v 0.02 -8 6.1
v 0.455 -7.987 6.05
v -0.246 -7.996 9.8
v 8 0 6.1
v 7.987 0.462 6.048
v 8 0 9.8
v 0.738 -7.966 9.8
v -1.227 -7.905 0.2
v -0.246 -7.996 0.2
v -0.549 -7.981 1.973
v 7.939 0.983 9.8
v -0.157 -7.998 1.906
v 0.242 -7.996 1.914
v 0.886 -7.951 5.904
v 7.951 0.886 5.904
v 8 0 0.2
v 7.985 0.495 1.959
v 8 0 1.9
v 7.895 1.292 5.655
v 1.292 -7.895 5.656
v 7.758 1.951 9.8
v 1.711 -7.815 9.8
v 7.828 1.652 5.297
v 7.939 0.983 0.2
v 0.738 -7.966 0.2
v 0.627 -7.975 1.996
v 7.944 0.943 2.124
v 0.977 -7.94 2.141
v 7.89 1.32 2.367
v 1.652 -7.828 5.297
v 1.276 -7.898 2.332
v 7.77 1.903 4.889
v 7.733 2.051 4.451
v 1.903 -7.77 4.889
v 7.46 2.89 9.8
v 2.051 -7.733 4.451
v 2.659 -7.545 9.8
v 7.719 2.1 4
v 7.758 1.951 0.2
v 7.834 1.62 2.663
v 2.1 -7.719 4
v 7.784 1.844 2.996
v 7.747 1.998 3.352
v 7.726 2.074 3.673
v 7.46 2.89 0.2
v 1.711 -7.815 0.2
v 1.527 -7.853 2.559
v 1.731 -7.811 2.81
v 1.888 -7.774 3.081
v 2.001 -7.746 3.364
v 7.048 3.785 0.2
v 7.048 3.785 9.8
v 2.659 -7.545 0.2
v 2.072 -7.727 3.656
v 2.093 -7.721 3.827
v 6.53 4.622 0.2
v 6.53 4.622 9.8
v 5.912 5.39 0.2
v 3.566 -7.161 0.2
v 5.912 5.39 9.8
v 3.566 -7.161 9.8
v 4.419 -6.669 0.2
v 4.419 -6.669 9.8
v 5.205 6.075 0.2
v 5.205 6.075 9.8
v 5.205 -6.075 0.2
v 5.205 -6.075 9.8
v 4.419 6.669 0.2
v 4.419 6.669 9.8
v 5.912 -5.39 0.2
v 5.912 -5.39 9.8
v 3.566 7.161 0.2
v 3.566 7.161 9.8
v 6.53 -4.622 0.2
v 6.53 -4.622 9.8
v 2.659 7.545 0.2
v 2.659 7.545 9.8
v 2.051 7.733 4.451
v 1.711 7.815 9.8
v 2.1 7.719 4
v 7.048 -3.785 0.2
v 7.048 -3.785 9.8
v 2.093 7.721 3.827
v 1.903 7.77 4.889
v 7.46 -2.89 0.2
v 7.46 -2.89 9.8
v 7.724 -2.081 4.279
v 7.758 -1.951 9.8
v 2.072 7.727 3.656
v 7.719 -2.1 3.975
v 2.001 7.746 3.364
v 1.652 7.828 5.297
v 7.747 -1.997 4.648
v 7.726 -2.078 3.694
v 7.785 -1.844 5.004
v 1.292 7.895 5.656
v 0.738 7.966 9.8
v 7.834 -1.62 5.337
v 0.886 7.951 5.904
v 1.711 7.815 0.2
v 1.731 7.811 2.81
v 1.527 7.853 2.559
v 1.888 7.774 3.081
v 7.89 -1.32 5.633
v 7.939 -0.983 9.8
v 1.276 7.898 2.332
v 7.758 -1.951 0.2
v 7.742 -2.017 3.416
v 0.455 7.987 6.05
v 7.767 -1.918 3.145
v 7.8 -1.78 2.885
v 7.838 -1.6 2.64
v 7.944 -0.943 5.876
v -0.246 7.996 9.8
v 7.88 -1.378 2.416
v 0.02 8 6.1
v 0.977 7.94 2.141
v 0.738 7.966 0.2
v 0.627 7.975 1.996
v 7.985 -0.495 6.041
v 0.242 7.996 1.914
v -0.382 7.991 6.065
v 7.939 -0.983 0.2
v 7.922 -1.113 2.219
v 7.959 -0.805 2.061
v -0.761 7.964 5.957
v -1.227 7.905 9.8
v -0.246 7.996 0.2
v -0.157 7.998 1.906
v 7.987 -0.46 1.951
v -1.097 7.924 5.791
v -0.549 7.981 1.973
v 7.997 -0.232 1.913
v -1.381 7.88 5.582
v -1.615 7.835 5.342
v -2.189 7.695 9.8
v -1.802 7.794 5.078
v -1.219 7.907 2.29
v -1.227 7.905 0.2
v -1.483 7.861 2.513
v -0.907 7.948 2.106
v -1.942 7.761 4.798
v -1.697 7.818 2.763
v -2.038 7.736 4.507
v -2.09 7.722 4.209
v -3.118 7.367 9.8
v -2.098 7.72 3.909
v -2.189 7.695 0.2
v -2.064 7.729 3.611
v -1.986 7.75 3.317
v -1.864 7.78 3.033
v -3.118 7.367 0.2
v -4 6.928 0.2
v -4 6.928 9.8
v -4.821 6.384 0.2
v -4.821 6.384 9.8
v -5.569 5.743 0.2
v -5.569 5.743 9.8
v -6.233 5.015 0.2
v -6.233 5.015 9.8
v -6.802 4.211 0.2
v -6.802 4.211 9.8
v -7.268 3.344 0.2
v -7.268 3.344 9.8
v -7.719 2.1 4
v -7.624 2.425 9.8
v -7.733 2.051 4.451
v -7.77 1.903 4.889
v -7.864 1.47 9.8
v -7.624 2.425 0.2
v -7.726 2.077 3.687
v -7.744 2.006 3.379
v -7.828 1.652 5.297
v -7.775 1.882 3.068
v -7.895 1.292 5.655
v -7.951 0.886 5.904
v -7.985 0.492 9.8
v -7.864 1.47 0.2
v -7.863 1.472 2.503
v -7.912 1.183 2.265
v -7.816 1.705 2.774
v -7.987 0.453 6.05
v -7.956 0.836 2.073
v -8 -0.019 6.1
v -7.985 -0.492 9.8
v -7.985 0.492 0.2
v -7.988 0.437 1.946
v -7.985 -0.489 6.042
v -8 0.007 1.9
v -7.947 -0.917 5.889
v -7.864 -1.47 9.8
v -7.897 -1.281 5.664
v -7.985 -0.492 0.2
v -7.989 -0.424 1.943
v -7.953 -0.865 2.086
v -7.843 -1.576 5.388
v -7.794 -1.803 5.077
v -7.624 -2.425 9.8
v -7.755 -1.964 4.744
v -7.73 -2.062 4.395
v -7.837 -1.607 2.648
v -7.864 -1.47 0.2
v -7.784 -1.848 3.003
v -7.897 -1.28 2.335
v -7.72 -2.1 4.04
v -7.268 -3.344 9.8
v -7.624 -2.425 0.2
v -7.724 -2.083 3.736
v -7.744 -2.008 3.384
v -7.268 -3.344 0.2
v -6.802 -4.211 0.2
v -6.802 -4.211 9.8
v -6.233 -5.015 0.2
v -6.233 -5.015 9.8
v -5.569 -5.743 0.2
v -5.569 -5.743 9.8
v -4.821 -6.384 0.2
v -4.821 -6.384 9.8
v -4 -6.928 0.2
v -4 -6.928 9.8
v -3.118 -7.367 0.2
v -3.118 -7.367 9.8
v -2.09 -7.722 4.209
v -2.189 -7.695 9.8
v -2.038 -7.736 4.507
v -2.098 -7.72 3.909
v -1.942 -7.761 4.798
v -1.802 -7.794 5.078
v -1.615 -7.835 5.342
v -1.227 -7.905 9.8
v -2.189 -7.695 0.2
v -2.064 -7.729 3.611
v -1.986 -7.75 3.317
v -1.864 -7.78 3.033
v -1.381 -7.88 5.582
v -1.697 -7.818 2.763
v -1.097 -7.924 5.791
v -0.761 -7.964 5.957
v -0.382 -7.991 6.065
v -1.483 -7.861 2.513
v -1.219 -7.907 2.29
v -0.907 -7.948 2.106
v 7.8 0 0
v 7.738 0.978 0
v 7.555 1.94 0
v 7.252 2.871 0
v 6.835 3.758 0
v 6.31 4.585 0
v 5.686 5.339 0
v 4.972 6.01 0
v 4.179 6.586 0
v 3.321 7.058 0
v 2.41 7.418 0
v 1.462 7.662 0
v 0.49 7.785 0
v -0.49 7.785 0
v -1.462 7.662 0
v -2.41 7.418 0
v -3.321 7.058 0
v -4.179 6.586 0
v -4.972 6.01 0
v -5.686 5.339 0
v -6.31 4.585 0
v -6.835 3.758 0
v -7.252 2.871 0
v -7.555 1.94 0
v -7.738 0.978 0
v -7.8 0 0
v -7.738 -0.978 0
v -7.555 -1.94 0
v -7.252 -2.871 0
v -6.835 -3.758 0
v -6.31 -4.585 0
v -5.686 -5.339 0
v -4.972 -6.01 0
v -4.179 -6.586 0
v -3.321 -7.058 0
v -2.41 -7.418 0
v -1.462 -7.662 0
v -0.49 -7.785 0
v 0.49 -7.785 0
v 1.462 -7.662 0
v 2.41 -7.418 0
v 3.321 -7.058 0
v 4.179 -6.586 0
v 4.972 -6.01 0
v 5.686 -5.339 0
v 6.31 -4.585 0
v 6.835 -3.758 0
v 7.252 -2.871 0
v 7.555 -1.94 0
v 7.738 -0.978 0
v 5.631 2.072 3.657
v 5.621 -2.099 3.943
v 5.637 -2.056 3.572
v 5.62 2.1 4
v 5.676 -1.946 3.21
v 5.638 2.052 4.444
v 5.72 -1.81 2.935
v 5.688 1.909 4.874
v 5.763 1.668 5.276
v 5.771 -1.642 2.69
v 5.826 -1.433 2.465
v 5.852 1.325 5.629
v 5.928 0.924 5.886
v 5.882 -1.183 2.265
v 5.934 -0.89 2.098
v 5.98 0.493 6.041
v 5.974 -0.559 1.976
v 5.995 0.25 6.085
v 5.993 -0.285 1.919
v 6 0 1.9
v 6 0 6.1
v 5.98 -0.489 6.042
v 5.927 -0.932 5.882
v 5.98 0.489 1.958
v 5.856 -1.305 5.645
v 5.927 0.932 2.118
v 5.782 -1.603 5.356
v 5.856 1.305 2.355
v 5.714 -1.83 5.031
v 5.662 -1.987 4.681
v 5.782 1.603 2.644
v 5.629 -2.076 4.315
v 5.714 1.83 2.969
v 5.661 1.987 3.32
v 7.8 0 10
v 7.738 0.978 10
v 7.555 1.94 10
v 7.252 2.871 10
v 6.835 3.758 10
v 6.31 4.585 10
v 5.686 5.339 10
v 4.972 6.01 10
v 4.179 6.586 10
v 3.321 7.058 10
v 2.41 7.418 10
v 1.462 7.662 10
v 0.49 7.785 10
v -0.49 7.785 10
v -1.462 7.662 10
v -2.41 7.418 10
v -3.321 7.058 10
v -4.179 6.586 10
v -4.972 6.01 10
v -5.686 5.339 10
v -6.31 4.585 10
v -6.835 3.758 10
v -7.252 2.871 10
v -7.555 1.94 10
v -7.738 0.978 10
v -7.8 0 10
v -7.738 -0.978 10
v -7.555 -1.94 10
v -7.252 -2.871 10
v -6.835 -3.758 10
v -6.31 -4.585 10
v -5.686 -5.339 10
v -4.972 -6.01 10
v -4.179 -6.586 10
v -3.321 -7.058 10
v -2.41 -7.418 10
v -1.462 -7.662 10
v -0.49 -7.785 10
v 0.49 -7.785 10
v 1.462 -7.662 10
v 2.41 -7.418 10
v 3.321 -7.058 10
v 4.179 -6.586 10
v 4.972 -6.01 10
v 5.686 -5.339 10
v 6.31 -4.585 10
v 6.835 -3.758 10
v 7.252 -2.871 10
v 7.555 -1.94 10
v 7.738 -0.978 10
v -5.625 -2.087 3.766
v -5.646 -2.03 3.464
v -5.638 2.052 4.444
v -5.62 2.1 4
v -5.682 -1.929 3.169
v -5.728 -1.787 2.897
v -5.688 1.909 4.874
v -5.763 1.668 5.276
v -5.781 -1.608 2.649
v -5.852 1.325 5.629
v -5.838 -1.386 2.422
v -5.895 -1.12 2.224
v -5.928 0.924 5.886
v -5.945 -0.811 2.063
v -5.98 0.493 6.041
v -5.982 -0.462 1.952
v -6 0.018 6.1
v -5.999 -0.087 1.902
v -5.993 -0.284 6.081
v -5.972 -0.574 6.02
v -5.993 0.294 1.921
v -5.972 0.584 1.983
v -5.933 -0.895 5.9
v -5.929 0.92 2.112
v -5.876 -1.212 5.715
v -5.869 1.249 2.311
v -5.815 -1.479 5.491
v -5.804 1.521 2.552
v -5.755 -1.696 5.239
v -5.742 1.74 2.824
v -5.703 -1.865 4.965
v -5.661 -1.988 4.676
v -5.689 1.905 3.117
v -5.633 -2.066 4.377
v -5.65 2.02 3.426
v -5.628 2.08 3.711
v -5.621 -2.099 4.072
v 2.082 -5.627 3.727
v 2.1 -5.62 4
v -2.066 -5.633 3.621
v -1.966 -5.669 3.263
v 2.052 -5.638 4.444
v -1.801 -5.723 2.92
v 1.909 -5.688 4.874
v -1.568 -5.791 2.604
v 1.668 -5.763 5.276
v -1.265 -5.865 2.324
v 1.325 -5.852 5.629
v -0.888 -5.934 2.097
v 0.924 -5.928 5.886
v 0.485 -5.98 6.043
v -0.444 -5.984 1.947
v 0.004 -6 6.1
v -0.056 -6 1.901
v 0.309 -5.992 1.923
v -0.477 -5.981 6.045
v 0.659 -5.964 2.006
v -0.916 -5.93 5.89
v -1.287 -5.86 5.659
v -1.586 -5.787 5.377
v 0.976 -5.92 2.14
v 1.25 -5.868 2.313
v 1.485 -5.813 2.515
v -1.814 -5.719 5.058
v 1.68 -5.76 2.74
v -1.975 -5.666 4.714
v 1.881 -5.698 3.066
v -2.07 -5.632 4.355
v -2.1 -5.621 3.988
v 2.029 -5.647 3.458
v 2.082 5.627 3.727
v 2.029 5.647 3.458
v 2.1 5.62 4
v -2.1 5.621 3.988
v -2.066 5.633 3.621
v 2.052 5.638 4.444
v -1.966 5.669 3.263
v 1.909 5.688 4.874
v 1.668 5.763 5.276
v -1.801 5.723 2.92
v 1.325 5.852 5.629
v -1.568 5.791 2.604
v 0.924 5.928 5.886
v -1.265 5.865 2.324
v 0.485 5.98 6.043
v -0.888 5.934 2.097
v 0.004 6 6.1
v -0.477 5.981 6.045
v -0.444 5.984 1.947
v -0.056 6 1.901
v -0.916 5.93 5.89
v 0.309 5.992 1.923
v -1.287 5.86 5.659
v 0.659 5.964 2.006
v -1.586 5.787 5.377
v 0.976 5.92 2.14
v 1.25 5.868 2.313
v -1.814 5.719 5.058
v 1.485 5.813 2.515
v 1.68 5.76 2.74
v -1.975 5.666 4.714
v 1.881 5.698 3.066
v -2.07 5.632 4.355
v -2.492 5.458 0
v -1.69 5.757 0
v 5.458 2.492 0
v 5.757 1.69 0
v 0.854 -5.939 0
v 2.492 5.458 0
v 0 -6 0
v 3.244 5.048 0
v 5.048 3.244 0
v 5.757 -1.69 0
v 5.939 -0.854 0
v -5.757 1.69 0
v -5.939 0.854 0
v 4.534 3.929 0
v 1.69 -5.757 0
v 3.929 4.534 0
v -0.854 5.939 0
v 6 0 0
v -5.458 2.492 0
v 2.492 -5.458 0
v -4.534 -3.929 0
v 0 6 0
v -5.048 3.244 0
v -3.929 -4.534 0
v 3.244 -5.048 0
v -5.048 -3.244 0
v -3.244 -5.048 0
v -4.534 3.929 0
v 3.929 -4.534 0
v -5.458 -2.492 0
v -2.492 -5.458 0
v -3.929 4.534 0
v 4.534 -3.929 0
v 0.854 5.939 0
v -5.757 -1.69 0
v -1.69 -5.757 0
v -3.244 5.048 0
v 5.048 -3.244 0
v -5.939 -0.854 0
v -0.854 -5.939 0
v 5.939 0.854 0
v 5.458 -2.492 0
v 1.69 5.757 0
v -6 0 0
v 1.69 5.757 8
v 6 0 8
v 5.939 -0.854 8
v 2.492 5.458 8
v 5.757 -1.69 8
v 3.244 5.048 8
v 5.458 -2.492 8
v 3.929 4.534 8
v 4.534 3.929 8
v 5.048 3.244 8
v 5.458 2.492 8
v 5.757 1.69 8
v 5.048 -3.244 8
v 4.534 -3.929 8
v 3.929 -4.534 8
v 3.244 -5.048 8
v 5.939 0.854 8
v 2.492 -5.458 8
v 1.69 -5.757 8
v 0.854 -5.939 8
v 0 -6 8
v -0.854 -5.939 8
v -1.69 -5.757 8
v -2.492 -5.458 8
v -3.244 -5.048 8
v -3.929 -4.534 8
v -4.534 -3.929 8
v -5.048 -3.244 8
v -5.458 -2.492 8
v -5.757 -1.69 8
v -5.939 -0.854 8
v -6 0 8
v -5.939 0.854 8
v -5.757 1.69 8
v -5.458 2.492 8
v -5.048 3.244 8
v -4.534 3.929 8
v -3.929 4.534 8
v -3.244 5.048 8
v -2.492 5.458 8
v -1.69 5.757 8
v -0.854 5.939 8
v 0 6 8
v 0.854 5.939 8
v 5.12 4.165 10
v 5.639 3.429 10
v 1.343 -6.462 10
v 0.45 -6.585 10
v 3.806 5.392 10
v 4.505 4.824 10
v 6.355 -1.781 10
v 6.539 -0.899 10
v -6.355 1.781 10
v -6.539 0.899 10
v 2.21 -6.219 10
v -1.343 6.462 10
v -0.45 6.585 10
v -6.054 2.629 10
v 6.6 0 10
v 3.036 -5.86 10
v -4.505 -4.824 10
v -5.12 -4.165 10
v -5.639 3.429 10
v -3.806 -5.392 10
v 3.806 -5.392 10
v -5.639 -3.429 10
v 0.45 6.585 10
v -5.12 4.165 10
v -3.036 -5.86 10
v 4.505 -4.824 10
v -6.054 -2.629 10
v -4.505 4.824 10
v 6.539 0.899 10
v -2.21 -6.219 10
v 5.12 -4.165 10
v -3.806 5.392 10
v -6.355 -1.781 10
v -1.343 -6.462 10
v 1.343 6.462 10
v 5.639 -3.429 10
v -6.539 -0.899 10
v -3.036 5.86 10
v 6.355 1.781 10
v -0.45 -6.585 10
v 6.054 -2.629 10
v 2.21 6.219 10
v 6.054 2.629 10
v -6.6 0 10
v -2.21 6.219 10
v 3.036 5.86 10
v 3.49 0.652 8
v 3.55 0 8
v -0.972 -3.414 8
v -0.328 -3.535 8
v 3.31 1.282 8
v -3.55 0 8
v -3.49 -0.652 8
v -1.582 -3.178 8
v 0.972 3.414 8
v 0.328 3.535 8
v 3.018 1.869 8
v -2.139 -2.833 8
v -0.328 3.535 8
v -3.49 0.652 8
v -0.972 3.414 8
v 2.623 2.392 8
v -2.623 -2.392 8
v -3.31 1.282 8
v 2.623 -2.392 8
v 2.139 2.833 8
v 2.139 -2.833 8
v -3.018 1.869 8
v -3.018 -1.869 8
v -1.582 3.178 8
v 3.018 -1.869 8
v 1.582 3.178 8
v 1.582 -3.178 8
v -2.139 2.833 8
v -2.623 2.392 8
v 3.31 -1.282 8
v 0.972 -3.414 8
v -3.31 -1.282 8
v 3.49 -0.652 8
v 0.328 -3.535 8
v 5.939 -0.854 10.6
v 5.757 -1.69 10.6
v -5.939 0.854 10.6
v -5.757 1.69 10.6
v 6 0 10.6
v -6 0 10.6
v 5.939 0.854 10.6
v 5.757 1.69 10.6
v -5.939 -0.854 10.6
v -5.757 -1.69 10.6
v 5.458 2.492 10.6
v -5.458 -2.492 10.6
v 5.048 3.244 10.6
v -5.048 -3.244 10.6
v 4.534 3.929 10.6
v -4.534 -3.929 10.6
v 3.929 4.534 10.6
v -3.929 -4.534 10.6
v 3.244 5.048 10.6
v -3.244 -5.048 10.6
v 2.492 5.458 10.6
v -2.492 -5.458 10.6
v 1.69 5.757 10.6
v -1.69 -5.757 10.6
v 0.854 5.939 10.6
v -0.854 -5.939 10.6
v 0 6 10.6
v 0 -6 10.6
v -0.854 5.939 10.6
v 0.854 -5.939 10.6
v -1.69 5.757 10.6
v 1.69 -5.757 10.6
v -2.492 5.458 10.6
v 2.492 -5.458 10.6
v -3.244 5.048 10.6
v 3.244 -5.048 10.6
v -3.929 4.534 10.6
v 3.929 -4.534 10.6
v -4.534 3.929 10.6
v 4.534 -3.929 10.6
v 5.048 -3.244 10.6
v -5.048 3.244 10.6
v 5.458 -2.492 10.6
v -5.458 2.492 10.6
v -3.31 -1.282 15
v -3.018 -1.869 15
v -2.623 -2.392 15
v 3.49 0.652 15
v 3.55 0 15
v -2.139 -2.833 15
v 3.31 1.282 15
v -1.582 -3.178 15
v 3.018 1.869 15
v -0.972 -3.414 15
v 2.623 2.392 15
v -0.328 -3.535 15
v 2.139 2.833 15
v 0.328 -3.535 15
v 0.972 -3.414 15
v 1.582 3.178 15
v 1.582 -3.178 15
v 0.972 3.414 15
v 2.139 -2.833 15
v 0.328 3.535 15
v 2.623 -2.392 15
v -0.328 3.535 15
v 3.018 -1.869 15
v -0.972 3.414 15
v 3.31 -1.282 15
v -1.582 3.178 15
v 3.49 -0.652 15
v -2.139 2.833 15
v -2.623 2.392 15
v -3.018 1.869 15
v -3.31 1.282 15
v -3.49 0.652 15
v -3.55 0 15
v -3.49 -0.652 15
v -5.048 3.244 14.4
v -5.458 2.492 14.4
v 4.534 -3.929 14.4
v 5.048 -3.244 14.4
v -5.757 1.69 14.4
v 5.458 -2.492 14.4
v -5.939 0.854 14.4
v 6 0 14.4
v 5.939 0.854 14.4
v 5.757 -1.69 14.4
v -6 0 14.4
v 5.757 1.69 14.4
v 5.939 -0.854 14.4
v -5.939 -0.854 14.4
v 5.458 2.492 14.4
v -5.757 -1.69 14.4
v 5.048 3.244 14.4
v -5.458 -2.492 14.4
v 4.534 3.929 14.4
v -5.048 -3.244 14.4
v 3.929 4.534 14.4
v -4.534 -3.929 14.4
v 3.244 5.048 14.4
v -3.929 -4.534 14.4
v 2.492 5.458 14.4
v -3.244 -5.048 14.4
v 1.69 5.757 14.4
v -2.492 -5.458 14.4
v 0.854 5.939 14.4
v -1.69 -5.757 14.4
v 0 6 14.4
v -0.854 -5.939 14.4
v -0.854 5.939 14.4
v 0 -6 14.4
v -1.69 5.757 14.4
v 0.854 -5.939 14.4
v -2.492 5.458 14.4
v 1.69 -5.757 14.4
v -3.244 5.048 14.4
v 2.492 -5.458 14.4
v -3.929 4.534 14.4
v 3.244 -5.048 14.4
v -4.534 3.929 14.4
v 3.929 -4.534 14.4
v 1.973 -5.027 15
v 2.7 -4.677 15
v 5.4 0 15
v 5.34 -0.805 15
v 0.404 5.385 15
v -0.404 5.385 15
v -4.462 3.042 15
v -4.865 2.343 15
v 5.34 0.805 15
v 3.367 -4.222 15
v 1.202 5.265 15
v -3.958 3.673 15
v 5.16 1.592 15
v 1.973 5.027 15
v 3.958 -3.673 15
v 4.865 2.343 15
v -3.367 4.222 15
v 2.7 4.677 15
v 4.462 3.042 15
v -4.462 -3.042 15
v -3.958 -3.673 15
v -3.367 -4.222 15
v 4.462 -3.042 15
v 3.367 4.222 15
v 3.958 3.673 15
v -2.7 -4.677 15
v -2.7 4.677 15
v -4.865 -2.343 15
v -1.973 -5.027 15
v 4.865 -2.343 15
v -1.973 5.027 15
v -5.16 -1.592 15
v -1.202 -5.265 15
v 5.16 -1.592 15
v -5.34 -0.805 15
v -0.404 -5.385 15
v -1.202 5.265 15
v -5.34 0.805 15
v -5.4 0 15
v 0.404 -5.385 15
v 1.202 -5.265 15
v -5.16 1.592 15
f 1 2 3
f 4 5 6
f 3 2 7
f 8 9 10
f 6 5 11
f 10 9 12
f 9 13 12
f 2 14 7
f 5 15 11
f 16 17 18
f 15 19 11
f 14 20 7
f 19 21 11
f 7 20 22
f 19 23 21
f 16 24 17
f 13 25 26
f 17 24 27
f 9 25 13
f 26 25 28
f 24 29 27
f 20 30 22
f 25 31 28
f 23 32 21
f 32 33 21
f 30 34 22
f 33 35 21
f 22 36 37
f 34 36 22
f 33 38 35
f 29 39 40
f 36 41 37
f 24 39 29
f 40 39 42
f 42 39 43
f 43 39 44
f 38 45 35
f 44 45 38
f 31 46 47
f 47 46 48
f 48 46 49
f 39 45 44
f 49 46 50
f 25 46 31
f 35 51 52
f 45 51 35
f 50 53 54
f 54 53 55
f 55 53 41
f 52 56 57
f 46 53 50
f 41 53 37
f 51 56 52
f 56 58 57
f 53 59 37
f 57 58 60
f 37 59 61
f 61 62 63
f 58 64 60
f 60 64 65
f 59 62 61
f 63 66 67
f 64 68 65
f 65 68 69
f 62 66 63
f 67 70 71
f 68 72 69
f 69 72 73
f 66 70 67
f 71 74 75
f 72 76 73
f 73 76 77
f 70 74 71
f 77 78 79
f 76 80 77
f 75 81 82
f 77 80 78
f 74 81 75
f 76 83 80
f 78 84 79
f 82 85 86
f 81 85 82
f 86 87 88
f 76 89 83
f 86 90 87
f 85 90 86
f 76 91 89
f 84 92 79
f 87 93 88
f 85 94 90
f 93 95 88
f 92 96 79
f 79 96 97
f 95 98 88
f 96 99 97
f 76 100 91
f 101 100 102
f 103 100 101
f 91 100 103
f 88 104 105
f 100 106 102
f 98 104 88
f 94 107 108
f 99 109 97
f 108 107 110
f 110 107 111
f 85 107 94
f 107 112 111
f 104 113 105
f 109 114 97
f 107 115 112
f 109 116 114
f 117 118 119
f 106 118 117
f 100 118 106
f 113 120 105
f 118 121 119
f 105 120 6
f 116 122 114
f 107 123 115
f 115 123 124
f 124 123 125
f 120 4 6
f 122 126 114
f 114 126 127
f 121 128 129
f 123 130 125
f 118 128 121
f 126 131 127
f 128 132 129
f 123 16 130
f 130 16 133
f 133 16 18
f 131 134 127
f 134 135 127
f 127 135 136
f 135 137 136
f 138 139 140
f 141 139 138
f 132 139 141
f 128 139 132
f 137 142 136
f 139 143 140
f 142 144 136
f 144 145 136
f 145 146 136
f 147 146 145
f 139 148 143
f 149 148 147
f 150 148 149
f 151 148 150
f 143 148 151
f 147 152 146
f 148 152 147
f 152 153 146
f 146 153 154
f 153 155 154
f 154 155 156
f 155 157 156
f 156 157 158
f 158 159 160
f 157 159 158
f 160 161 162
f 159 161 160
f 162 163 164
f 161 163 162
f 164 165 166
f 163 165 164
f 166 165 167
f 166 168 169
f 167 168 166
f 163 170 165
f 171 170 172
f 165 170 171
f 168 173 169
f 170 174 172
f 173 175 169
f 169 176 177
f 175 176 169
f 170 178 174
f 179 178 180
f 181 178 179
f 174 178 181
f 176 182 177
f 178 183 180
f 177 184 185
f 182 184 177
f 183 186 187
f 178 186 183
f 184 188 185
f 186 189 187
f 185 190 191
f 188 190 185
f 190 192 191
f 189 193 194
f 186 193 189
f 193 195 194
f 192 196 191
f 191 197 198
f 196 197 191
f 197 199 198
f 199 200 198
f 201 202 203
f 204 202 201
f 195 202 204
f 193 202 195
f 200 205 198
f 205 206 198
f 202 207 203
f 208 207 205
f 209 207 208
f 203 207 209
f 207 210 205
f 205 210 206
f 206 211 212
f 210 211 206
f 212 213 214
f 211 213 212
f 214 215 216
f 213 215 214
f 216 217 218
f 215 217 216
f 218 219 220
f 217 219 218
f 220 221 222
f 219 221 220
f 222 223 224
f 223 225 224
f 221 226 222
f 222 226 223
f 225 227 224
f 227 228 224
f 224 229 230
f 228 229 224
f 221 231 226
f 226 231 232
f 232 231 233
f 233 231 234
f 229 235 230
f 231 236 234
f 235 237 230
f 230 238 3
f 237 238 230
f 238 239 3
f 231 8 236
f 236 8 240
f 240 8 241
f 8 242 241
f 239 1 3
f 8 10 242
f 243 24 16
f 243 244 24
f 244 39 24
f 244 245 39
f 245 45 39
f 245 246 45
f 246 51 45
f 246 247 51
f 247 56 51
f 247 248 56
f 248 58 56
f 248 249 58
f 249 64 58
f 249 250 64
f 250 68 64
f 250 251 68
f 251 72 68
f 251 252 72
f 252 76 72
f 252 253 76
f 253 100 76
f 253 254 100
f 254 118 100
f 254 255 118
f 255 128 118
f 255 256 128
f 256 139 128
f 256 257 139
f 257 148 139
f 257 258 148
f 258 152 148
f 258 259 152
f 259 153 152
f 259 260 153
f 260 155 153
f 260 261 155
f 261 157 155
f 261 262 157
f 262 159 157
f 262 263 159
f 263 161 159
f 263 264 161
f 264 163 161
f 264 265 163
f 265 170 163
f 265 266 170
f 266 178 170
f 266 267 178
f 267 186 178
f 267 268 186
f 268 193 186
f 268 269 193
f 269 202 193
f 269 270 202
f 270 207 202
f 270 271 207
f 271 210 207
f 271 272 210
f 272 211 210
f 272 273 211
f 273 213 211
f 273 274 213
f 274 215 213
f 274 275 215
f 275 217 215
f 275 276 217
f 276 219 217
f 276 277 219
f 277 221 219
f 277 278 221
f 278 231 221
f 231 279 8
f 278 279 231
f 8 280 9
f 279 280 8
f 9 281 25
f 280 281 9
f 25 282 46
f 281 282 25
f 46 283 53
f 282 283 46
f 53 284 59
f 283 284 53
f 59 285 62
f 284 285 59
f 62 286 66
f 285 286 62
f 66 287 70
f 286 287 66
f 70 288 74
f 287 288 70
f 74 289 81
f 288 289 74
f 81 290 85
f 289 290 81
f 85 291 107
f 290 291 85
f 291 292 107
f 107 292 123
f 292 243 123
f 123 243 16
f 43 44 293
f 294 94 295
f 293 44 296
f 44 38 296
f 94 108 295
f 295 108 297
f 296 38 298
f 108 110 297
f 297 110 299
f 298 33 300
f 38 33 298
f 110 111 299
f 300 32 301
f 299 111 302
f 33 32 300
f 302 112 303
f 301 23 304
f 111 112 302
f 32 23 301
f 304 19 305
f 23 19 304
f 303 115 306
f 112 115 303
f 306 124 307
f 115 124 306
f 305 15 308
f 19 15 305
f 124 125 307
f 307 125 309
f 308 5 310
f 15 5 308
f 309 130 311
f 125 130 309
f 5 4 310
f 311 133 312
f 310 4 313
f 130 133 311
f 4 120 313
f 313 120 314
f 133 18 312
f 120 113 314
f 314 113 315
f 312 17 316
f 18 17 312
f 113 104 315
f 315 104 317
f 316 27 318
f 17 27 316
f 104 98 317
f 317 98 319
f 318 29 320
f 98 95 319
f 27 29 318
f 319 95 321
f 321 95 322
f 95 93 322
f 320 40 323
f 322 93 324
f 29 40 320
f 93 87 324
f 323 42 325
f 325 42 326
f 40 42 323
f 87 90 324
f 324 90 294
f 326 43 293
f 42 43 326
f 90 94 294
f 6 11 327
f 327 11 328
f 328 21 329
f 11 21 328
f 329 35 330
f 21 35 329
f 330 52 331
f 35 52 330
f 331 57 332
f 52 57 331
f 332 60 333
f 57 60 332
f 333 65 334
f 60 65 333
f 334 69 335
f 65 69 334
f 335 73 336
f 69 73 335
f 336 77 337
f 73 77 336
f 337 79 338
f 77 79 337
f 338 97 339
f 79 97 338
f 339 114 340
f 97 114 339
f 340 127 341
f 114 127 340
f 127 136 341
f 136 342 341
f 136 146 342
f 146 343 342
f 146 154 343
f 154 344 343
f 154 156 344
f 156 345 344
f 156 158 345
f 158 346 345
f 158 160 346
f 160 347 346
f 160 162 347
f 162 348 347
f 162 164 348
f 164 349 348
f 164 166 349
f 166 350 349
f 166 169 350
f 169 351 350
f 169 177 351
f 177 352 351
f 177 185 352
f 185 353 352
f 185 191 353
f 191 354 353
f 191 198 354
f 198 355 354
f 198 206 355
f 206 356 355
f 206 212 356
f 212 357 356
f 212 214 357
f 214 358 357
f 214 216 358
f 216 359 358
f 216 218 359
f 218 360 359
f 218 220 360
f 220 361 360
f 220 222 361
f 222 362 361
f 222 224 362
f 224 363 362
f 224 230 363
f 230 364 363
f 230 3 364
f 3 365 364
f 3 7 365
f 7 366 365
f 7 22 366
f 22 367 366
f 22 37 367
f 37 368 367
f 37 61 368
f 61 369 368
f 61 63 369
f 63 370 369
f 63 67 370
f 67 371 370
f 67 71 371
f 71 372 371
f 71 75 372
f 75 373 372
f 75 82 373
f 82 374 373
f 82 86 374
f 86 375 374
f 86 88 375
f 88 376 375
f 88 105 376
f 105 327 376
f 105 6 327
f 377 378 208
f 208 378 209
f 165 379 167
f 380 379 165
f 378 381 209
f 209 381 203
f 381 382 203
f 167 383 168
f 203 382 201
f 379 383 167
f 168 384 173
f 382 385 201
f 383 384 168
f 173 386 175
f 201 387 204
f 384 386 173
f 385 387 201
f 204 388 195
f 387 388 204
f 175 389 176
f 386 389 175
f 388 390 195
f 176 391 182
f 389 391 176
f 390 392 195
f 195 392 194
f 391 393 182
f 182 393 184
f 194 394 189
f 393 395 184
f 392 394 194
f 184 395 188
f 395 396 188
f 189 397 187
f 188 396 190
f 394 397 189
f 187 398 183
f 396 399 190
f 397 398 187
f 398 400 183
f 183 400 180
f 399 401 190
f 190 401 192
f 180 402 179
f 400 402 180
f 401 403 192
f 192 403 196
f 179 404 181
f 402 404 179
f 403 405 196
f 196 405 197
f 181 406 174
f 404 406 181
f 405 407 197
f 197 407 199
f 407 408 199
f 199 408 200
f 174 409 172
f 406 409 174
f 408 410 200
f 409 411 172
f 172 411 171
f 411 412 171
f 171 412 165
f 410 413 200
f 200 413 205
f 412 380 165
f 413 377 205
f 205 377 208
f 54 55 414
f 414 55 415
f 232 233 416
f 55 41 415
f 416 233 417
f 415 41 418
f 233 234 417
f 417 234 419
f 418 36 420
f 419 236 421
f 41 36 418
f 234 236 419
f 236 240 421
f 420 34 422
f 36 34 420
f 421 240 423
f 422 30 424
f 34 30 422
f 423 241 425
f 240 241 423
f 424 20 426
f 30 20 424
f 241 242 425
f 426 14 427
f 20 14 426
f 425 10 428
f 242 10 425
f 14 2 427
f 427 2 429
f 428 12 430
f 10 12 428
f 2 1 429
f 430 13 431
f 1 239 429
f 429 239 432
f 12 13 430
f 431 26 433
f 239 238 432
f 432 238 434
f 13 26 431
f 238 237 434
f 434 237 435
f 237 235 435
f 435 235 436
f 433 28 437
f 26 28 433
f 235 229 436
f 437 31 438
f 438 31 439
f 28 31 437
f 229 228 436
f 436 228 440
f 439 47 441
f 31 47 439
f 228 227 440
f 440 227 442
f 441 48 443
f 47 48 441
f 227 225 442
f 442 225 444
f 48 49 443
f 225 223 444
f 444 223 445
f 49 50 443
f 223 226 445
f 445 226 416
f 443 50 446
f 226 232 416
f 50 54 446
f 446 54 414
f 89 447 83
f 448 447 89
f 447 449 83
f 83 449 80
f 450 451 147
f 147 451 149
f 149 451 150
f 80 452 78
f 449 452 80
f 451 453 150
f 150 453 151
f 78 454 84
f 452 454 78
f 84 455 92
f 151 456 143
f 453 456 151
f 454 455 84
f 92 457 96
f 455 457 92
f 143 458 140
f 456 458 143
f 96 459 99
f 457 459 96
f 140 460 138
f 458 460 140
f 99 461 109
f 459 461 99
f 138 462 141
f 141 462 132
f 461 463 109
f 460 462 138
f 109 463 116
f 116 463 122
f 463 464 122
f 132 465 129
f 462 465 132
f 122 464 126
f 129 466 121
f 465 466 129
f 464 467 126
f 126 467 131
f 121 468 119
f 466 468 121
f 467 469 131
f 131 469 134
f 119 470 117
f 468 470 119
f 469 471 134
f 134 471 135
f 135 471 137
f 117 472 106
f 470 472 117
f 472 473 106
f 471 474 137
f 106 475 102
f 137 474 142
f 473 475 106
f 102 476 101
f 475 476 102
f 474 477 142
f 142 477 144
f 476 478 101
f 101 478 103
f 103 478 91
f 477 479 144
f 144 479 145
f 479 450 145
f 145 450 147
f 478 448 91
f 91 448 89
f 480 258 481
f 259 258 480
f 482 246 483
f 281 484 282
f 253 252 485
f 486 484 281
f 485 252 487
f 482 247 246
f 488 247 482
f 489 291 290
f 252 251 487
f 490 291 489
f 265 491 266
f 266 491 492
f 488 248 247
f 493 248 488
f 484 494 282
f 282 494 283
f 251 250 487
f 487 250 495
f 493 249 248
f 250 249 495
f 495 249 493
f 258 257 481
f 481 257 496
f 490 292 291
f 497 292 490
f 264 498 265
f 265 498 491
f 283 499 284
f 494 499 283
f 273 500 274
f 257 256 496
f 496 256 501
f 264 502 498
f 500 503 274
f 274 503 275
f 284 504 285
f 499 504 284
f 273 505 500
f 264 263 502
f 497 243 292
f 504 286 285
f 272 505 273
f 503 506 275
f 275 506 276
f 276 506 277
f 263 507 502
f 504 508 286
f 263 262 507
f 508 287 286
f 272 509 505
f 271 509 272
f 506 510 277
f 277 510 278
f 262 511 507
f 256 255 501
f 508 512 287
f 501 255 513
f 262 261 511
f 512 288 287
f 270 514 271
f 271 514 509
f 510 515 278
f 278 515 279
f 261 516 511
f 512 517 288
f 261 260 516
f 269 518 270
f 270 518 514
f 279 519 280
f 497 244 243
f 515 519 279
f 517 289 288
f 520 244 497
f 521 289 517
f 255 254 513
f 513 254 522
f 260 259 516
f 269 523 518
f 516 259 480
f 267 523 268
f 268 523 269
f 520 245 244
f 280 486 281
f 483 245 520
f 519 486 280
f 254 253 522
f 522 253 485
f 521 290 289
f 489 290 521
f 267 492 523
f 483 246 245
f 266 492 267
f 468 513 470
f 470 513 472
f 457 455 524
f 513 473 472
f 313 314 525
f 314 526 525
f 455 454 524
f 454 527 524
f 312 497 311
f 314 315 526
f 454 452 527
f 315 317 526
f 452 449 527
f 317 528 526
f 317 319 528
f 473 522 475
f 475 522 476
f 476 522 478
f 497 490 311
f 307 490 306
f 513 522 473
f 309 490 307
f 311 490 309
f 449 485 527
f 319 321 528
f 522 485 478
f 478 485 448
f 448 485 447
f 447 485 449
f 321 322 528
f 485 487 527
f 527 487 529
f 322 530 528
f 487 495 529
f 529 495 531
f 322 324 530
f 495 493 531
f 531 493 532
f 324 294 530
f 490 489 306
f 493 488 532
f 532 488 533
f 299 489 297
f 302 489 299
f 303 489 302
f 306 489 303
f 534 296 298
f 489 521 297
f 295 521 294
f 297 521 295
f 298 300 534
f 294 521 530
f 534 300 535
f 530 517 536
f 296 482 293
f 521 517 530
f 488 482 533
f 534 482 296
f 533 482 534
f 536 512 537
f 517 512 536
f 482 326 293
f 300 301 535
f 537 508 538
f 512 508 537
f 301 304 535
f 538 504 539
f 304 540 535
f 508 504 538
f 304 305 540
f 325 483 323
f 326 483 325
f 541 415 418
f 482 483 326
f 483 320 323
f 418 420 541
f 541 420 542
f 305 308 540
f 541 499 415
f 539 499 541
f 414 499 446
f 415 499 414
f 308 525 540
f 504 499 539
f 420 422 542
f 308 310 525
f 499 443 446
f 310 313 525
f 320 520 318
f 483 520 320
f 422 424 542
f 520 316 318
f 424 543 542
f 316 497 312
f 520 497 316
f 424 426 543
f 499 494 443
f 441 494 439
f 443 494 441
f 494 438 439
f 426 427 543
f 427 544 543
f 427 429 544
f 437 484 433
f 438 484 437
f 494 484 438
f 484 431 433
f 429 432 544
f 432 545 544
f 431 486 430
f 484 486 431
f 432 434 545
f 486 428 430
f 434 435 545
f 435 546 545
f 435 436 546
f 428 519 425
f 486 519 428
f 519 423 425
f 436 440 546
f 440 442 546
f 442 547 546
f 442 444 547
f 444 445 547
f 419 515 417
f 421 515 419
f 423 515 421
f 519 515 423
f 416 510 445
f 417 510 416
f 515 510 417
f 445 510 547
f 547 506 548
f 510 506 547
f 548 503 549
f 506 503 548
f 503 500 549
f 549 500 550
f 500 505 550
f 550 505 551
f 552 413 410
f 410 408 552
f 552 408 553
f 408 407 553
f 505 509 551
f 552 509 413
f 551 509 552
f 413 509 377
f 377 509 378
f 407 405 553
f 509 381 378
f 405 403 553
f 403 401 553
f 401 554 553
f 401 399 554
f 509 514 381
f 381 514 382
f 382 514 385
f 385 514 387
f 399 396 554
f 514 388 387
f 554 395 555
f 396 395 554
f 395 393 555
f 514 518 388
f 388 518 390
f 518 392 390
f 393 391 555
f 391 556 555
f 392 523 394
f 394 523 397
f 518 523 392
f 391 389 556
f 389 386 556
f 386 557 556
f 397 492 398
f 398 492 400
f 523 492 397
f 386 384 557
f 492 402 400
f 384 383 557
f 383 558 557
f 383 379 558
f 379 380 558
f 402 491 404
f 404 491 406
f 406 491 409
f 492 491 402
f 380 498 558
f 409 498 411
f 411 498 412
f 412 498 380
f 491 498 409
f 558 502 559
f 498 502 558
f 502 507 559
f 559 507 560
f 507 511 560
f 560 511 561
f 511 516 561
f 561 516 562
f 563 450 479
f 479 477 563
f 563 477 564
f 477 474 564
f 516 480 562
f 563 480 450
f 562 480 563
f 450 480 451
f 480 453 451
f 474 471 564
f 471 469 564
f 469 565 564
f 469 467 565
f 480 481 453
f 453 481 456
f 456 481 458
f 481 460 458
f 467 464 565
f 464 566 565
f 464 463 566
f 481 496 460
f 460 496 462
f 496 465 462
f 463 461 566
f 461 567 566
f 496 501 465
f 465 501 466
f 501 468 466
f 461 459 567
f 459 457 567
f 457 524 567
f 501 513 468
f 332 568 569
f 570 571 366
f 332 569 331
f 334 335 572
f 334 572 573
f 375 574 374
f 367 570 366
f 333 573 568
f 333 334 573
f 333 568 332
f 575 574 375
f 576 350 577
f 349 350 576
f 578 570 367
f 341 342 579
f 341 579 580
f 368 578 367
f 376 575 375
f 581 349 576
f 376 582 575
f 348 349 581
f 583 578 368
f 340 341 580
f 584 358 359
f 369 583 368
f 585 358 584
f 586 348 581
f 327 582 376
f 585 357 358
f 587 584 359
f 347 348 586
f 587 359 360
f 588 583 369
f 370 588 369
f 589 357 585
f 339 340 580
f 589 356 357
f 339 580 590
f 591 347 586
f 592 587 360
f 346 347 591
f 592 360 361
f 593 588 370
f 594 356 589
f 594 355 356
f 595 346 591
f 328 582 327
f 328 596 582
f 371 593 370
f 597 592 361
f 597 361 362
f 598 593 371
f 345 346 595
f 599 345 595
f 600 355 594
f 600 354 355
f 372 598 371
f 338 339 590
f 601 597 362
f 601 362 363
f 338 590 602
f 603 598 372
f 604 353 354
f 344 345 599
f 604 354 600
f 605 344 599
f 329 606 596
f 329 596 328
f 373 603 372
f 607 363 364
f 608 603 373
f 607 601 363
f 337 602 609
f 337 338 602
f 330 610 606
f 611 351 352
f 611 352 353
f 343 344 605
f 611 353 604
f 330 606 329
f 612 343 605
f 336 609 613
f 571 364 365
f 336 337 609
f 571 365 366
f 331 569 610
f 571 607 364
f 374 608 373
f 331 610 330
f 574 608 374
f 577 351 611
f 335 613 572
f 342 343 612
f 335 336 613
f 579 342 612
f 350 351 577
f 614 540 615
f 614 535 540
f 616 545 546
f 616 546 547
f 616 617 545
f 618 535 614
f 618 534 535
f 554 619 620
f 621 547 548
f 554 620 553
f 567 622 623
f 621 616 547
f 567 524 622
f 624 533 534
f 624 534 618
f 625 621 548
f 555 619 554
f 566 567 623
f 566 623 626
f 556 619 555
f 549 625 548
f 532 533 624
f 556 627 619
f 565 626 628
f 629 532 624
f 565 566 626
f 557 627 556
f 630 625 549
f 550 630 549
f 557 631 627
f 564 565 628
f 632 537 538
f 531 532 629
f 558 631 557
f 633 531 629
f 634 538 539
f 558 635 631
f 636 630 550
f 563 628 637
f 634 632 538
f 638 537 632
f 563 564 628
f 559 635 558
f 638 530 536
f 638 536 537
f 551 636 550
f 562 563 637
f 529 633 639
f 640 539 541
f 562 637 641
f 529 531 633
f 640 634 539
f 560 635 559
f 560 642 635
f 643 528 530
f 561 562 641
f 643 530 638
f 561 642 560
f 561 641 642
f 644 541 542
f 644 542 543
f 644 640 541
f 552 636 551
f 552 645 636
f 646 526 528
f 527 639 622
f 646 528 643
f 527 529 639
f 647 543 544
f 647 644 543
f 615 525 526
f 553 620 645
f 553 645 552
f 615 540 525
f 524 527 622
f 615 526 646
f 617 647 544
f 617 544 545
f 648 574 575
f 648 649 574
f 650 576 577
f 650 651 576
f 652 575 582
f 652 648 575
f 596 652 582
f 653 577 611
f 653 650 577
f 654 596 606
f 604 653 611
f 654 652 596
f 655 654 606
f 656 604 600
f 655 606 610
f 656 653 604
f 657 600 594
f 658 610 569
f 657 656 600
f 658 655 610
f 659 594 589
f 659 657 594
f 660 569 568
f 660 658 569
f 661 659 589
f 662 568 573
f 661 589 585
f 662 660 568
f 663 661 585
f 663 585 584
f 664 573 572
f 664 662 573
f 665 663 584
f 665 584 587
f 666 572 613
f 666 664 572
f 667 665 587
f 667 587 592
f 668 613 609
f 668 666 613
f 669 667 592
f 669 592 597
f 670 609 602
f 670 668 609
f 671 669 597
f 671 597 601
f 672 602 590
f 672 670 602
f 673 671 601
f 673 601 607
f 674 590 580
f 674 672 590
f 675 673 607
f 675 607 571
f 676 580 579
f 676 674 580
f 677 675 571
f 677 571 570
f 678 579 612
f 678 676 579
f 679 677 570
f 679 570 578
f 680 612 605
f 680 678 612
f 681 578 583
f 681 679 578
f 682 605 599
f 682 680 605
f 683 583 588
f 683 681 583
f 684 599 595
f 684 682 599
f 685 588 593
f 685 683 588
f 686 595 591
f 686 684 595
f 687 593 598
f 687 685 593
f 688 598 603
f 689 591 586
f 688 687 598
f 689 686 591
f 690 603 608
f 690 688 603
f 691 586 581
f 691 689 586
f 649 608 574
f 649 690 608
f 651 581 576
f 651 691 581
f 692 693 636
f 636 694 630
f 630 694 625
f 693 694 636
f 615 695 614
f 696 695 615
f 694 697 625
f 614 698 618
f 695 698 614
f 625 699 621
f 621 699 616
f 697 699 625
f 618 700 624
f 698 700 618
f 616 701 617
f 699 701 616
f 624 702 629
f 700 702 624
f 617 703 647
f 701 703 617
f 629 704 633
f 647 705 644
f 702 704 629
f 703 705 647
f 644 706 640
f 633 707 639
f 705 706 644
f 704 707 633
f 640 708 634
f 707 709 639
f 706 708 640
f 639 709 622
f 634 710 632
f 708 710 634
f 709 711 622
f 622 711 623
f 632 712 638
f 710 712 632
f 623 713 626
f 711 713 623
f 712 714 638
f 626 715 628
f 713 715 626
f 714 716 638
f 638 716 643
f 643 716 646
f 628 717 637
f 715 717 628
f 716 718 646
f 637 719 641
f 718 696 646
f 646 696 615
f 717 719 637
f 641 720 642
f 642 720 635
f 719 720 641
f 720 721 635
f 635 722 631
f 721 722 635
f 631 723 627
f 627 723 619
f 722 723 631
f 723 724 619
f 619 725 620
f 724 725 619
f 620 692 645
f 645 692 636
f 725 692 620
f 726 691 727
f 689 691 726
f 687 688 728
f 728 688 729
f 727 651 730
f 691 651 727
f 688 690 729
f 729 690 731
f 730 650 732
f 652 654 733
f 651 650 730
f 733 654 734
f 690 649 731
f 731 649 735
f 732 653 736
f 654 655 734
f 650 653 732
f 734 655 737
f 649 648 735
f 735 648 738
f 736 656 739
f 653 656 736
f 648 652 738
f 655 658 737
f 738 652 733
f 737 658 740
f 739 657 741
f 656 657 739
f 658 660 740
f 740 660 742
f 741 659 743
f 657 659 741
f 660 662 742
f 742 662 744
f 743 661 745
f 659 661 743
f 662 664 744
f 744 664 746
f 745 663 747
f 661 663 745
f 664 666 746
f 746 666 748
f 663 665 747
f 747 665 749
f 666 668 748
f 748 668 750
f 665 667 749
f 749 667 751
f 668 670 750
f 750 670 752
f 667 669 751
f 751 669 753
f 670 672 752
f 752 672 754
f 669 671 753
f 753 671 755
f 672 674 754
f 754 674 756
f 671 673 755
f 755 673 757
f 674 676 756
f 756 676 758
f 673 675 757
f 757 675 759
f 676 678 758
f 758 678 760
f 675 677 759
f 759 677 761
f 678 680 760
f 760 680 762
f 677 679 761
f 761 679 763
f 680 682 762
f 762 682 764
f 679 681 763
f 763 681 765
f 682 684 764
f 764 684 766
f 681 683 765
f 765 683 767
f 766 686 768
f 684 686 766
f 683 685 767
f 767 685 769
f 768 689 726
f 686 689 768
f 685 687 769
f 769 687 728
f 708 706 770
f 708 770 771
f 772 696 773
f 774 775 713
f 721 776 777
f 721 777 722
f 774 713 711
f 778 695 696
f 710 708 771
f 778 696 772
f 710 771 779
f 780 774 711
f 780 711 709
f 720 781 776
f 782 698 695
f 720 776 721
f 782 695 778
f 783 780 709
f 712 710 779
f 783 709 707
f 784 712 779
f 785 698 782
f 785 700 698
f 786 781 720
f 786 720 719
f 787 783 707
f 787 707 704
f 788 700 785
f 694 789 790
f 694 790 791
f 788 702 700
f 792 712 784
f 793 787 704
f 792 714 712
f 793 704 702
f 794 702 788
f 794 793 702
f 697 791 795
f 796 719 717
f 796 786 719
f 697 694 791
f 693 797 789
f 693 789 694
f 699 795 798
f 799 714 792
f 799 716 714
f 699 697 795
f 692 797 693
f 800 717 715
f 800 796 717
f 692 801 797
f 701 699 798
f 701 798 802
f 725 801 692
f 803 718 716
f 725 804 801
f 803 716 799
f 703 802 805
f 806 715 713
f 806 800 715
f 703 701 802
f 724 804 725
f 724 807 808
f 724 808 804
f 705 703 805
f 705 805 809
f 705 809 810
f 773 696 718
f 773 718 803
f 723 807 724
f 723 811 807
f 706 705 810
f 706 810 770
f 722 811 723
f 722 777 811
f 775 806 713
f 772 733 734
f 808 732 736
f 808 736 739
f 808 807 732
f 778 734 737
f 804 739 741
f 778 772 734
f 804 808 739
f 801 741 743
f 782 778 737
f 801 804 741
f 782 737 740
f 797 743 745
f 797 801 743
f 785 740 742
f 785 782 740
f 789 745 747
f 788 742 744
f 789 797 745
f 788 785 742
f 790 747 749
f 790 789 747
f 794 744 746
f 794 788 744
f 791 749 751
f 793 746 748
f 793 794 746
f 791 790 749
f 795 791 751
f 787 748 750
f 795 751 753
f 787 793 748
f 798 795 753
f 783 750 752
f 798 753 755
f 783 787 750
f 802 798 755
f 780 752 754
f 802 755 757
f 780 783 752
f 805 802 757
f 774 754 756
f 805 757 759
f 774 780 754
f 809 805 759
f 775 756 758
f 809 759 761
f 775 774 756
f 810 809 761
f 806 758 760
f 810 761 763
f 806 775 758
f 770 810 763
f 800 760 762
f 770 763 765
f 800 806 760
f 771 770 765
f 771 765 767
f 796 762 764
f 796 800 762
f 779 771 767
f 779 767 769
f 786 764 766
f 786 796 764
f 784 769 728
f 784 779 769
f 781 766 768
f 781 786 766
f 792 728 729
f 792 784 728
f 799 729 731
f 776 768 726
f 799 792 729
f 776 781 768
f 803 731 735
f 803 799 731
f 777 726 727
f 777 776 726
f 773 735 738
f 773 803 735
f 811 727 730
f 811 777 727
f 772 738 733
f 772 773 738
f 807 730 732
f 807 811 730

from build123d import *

# Parameters (mm, degrees)
SKETCH_R        = 8
PAD_DEPTH       = 10
SKETCH001_R     = 6
PAD001_DEPTH    = 5
SKETCH002_R     = 3.55
POCKET_DEPTH    = 20
SKETCH003_R     = 6
POCKET001_DEPTH = 8
SKETCH004_R     = 2.1
POCKET002_DEPTH = 50
SKETCH005_R     = 2.1
POCKET003_DEPTH = 50
CHAMFER_SIZE    = 0.6
CHAMFER001_SIZE = 0.2
CHAMFER002_SIZE = 0.2


with BuildPart() as part:
    # Sketch → Pad (new body)
    with BuildSketch(Plane.XY):
        Circle(SKETCH_R)
    extrude(amount=PAD_DEPTH)

    # Sketch001 (on Face3 of Pad) → Pad001 (join)
    with BuildSketch(Plane.XY.offset(10)):
        Circle(SKETCH001_R)
    extrude(amount=PAD001_DEPTH)

    # Sketch002 (on Face5 of Pad001) → Pocket (cut)
    with BuildSketch(Plane.XY.offset(15)):
        Circle(SKETCH002_R)
    extrude(amount=-POCKET_DEPTH, mode=Mode.SUBTRACT)

    # Sketch003 (on Face2 of Pocket) → Pocket001 (cut)
    with BuildSketch(Plane(origin=(0, 0, 0), x_dir=(1, 0, 0), z_dir=(0, 0, -1))):
        Circle(SKETCH003_R)
    extrude(amount=-POCKET001_DEPTH, mode=Mode.SUBTRACT)

    # Sketch004 → Pocket002 (cut, symmetric)
    with BuildSketch(Plane.XZ):
        with Locations((0, 4)):
            Circle(SKETCH004_R)
    extrude(amount=POCKET002_DEPTH, both=True, mode=Mode.SUBTRACT)

    # Sketch005 → Pocket003 (cut, symmetric)
    with BuildSketch(Plane.YZ):
        with Locations((0, 4)):
            Circle(SKETCH005_R)
    extrude(amount=POCKET003_DEPTH, both=True, mode=Mode.SUBTRACT)

    # Chamfer
    chamfer_edges = [part.edges().sort_by_distance(p)[0] for p in [
        (6, 0, 12.5),
        (-6, 0, 10),
        (-6, 0, 15),
    ]]
    chamfer(chamfer_edges, length=CHAMFER_SIZE)

    # Chamfer001
    chamfer001_edges = [part.edges().sort_by_distance(p)[0] for p in [
        (-8, 0, 10),
    ]]
    chamfer(chamfer001_edges, length=CHAMFER001_SIZE)

    # Chamfer002
    chamfer002_edges = [part.edges().sort_by_distance(p)[0] for p in [
        (-8, 0, 0),
    ]]
    chamfer(chamfer002_edges, length=CHAMFER002_SIZE)


solid = part.part
